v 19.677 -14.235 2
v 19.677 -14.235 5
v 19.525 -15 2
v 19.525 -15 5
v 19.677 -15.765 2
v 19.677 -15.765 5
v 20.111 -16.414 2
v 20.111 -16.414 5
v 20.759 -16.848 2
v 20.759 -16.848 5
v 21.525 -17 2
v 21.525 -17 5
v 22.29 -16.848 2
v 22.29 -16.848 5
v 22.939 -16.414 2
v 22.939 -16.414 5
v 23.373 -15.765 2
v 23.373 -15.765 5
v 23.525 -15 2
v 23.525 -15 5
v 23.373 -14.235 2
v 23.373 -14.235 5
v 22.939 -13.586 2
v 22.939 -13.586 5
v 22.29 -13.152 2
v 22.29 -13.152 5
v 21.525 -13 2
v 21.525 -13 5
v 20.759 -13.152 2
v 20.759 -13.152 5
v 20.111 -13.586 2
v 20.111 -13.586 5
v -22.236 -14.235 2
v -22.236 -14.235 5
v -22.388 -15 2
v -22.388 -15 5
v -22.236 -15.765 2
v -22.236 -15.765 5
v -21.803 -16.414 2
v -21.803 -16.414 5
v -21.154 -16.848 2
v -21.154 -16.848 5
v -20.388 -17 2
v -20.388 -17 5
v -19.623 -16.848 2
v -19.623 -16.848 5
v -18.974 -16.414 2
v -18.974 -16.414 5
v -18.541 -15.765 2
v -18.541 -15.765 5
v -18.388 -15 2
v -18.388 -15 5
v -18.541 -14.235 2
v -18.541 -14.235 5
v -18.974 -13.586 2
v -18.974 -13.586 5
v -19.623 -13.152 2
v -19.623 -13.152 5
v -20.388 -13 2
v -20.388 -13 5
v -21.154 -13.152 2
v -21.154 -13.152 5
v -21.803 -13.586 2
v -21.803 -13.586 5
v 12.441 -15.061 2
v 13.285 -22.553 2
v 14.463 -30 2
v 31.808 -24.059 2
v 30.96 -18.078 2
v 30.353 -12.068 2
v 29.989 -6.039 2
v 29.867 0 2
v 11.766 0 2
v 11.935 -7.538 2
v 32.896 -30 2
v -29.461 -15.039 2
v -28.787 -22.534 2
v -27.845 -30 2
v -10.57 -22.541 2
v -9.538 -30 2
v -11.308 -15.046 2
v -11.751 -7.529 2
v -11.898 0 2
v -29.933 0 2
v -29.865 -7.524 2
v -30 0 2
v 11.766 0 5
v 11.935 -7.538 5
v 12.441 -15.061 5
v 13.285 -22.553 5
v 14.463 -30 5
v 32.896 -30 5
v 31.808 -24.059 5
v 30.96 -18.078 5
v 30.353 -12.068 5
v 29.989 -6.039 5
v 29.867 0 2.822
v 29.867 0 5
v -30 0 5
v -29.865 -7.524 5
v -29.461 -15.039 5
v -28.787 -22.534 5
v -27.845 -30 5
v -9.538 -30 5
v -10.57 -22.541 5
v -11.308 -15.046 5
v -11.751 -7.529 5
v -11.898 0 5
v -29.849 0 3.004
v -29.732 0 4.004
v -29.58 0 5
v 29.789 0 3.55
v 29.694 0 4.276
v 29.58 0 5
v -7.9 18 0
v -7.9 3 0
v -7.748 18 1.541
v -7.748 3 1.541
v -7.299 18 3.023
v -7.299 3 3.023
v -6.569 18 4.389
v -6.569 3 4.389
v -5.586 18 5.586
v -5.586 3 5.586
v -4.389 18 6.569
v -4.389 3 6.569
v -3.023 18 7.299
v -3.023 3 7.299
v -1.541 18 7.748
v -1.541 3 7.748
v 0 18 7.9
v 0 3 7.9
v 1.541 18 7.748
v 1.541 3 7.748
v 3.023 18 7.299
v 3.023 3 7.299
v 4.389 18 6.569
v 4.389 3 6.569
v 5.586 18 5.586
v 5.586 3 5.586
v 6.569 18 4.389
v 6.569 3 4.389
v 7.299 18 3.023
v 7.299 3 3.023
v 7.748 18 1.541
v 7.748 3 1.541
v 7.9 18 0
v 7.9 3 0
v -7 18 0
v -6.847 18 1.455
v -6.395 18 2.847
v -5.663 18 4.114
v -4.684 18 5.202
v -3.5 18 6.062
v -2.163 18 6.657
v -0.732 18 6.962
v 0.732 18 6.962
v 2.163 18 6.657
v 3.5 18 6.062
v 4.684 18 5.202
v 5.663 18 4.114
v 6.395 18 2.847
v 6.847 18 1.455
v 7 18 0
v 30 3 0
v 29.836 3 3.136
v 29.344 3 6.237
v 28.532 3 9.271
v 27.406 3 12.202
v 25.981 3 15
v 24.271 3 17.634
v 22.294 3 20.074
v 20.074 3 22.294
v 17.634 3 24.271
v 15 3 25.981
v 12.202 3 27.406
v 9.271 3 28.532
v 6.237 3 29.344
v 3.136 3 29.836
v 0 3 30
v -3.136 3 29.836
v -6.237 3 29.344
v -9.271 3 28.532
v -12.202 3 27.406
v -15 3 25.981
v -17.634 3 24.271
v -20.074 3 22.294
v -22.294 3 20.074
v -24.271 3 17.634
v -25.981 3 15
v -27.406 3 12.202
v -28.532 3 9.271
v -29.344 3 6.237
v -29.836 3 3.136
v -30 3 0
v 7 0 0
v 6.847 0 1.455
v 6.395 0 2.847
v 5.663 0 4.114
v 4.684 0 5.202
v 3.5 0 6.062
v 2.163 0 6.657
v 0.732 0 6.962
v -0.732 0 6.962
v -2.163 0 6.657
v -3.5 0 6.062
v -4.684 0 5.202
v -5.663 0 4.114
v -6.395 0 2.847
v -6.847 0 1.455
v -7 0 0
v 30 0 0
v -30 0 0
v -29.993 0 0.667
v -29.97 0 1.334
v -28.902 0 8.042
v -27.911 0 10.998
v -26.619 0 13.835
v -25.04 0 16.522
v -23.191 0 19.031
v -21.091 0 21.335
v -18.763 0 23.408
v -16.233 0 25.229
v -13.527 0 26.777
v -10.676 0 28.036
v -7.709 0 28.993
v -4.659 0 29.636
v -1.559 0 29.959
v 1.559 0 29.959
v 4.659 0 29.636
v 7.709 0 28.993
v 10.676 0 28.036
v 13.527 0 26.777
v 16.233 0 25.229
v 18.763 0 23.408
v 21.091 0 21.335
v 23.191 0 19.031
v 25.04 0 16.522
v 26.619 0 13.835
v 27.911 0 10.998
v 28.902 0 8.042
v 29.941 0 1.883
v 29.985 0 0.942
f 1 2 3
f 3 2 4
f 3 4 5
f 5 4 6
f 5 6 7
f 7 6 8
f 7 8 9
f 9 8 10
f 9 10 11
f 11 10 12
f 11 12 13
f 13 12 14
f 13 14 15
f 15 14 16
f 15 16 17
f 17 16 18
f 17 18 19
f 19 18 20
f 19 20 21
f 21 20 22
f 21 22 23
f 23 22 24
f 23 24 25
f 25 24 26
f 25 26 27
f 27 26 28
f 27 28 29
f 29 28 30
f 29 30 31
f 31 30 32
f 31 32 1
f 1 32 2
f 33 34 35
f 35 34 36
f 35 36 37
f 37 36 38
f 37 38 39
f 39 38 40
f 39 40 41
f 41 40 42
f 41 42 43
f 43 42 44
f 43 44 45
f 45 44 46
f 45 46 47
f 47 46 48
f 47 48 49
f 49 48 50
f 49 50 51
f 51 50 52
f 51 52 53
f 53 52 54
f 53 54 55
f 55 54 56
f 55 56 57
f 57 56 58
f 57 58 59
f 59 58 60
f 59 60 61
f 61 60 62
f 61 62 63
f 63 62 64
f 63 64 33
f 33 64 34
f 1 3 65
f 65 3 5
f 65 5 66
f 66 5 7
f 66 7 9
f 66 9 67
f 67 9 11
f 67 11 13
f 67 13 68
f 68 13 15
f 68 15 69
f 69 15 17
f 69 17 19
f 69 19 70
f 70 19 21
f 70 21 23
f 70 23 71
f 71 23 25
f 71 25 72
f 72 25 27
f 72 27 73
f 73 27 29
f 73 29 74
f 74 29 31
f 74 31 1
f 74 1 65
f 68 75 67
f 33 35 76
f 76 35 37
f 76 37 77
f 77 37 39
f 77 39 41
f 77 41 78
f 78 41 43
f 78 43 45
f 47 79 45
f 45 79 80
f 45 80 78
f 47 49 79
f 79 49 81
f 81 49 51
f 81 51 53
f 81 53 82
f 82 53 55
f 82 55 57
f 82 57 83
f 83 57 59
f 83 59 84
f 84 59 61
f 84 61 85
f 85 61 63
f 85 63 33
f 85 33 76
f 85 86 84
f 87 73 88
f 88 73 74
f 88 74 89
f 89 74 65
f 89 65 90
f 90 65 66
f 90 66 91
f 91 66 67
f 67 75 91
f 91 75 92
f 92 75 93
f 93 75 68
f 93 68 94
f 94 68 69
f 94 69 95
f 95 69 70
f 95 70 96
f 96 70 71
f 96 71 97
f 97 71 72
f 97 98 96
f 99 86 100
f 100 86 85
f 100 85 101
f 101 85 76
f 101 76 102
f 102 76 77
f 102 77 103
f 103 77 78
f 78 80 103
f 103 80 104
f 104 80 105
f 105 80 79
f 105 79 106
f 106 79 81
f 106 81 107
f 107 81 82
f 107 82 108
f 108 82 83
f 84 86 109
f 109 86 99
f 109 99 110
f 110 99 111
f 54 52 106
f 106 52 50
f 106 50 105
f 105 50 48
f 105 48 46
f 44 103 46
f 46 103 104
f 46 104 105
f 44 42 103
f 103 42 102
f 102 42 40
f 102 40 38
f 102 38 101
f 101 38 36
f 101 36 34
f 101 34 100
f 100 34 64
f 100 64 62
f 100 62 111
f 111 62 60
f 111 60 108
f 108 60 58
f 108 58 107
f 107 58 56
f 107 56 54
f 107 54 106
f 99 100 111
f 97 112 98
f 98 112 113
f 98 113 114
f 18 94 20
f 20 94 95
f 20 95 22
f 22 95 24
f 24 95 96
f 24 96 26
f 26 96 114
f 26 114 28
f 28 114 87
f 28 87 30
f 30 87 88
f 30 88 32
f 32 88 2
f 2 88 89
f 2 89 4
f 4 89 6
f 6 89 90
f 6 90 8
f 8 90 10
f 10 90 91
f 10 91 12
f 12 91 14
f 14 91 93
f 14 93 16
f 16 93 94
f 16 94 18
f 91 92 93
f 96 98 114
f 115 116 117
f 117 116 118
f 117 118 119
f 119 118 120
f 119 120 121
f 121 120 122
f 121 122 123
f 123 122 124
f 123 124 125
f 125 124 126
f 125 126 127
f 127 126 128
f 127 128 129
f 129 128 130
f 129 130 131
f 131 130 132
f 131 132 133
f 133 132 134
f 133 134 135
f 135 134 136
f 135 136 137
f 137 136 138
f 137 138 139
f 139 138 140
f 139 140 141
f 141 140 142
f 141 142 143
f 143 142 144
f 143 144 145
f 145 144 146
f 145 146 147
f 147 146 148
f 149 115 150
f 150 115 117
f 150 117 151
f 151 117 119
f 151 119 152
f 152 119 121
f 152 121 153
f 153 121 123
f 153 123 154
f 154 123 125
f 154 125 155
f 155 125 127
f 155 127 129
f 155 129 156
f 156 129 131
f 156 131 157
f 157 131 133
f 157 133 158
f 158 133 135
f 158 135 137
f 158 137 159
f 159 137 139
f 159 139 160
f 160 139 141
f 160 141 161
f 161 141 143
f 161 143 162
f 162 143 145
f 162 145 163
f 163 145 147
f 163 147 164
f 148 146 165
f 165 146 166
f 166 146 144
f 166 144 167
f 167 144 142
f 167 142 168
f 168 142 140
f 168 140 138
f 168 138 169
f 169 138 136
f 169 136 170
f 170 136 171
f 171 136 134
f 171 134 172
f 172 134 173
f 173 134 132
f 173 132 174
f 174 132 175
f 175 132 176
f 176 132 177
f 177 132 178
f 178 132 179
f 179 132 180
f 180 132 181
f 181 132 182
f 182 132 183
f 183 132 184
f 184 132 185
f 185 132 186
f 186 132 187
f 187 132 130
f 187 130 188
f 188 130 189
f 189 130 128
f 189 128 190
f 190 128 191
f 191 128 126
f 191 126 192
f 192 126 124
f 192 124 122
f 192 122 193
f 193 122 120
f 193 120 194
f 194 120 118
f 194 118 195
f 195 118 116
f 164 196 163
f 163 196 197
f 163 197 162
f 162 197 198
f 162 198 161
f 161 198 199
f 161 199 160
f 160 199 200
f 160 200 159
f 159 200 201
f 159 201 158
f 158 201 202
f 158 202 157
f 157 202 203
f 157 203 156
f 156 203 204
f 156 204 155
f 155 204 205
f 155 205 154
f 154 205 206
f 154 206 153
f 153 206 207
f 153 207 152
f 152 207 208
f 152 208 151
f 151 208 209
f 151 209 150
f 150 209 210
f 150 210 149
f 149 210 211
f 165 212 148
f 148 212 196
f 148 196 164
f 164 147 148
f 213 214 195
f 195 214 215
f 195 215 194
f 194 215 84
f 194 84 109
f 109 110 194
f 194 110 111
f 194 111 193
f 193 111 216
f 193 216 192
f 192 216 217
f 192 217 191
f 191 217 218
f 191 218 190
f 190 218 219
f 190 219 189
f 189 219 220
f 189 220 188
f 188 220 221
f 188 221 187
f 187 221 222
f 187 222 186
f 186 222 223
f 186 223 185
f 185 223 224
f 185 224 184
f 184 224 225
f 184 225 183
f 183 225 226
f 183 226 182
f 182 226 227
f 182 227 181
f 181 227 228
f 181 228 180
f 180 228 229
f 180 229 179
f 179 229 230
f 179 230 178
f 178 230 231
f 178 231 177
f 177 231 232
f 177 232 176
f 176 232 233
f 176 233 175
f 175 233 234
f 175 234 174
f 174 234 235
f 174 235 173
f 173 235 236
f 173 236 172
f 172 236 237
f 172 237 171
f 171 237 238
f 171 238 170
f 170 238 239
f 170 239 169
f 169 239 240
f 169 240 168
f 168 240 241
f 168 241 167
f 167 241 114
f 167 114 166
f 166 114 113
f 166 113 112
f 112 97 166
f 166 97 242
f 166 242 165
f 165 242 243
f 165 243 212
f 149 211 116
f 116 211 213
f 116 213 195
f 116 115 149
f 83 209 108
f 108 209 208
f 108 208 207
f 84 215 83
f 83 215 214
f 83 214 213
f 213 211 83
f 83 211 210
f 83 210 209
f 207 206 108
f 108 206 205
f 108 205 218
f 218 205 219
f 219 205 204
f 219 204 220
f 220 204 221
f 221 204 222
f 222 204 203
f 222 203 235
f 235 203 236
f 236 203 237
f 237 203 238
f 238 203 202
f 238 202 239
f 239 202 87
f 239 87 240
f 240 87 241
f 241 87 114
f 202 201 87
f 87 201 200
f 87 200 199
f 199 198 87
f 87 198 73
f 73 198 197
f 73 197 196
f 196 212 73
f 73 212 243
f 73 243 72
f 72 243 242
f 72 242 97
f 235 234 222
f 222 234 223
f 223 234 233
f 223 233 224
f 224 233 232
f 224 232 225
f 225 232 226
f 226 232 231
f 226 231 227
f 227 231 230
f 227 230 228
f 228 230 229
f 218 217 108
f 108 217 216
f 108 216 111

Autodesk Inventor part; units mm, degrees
ref_plane "YZ Plane" through (0, 0, 0) normal (1, 0, 0) x (0, 1, 0)
ref_plane "XZ Plane" through (0, 0, 0) normal (0, 1, 0) x (-1, 0, 0)
ref_plane "XY Plane" through (0, 0, 0) normal (0, 0, 1) x (1, 0, 0)
sketch "Skizze1" plane through (0, 0, 0) normal (0, 1, 0) x (-1, 0, 0)
  circle A0 centre (0, 0) radius 30
  circle A1 centre (0, 0) radius 7
  line L0 (7, 0) -> (30, 0)
  line L1 (-7, 0) -> (-30, 0)
  line L2 (42, 0) -> (-42, 0) projected
  line L3 (0, -42) -> (0, 42) projected
  dimension "d0" = 60
  dimension "d1" = 14
  dimension "d2" = 0
extrude "Extrusion1" add sketch "Skizze1" along normal blind 3 contours L0 A1 L3 A0 | L3 A1 L1 A0 picked at (15.508, 15.8775) picked at (-21.0338, 7.0833)
sketch "Skizze3" plane through (0, 3, 0) normal (0, 1, 0) x (1, 0, 0)
  circle A0 centre (0, 0) radius 7.9
  circle A1 centre (0, 0) radius 7
  arc A2 (-7, 0) -> (7, 0) centre (0, 0) ccw projected
  line L0 (30, 0) -> (7, 0) projected
  line L1 (7.9, 0) -> (-7.9, 0)
  dimension "d13" = 15.8
extrude "Extrusion3" add sketch "Skizze3" along normal blind 15 contours A0 L1 A1 L0 picked at (7.5235, -0.6302)
sketch "Skizze4" plane through (-7, 0, 0) normal (0, 0, -1) x (-1, 0, 0)
  circle A0 centre (-186.9335, 0) radius 209.9335
  line L0 (106.9734, 0) -> (-480.8404, 0) projected
  line L1 (-7, -293.9069) -> (-7, 293.9069) projected
  line L2 (23, 0) -> (23, 3) projected
  circle A1 centre (-186.9335, 0) radius 191.832
  circle A2 centre (-186.9335, 0) radius 168.168
  circle A3 centre (-186.9335, 0) radius 150.0665
  line L3 (-39.8962, -30) -> (20.8454, -30)
  line L4 (2.5382, -30) -> (20.8454, -30)
  line L5 (-21.463, -30) -> (-39.8962, -30)
  point P0 (-7, 0)
  point P1 (4.8985, 0)
  point P2 (-18.7655, 0)
  point P3 (-36.867, 0)
  dimension "d16" = 419.867
  dimension "d17" = 383.664
  dimension "d18" = 336.336
  dimension "d19" = 300.133
  dimension "d20" = 30
extrude "Extrusion4" add sketch "Skizze4" against normal blind 5 contours L3 A1 L0 A0 | L3 A3 L0 A2 picked at (-33.1917, -26.6918)
sketch "Skizze5" plane through (-7.9, 3, 0) normal (0, 0, -1) x (-1, 0, 0)
  circle A0 centre (-187.8335, -3) radius 209.9335
  line L0 (22.1, -3) -> (22.1, 0)
  circle A1 centre (-187.8335, -3) radius 191.832
  circle A2 centre (-187.8335, -3) radius 168.168
  circle A3 centre (-187.8335, -3) radius 150.0665
  arc A4 (19.9454, -33) -> (22.1, -3) centre (-187.8335, -3) ccw projected
  line L1 (1.6382, -33) -> (19.9454, -33) projected
  line L2 (19.9454, -33) -> (1.6382, -33)
  line L3 (1.6382, -33) -> (-22.363, -33)
  line L4 (-40.7962, -33) -> (-22.363, -33)
  line L5 (22.1, -3) -> (3.9985, -3)
  line L6 (21.6804, -3) -> (-37.4804, -3) projected
  line L7 (-19.6655, -3) -> (-37.767, -3)
  point P0 (-7.9, -3)
  point P1 (193.7355, 3.1959)
  point P2 (175.634, 3.1959)
  point P3 (151.97, 3.1959)
  point P4 (133.8685, 3.1959)
  point P5 (19.9454, -33)
  dimension "d23" = 419.867
  dimension "d24" = 383.664
  dimension "d25" = 336.336
  dimension "d26" = 300.133
extrude "Extrusion5" cut sketch "Skizze5" against normal blind 2 contours A0 L1 A1 L5 | L4 A3 L7 L6 A2 picked at (8.1773, -29.6819) picked at (-34.0917, -29.6918)
sketch "Skizze6" plane through (-7, 0, 5) normal (0, 0, 1) x (1, 0, 0)
  line L0 (36.5804, 0) -> (-22.5804, 0) projected
  line L1 (-23, 0) -> (-23, 3) projected
  circle A0 centre (186.9335, 0) radius 200.8827
  arc A1 (-23, 0) -> (-20.8454, -30) centre (186.9335, 0) ccw projected
  circle A2 centre (186.9335, 0) radius 159.1173
  point P0 (7, 0)
  point P1 (-13.3884, -15)
  point P2 (28.5249, -15)
  dimension "d32" = 401.7655
  dimension "d33" = 318.2345
  dimension "d30" = 15
  dimension "d34" = 15
hole "Bohrung1" at (-20.3884, -15, 5) at (21.5249, -15, 5) direction (0, 0, -1) diameter 4 depth 10 tip angle 118
properties part number "Verbindungsstück-rechts-15mm-Ph-L"
